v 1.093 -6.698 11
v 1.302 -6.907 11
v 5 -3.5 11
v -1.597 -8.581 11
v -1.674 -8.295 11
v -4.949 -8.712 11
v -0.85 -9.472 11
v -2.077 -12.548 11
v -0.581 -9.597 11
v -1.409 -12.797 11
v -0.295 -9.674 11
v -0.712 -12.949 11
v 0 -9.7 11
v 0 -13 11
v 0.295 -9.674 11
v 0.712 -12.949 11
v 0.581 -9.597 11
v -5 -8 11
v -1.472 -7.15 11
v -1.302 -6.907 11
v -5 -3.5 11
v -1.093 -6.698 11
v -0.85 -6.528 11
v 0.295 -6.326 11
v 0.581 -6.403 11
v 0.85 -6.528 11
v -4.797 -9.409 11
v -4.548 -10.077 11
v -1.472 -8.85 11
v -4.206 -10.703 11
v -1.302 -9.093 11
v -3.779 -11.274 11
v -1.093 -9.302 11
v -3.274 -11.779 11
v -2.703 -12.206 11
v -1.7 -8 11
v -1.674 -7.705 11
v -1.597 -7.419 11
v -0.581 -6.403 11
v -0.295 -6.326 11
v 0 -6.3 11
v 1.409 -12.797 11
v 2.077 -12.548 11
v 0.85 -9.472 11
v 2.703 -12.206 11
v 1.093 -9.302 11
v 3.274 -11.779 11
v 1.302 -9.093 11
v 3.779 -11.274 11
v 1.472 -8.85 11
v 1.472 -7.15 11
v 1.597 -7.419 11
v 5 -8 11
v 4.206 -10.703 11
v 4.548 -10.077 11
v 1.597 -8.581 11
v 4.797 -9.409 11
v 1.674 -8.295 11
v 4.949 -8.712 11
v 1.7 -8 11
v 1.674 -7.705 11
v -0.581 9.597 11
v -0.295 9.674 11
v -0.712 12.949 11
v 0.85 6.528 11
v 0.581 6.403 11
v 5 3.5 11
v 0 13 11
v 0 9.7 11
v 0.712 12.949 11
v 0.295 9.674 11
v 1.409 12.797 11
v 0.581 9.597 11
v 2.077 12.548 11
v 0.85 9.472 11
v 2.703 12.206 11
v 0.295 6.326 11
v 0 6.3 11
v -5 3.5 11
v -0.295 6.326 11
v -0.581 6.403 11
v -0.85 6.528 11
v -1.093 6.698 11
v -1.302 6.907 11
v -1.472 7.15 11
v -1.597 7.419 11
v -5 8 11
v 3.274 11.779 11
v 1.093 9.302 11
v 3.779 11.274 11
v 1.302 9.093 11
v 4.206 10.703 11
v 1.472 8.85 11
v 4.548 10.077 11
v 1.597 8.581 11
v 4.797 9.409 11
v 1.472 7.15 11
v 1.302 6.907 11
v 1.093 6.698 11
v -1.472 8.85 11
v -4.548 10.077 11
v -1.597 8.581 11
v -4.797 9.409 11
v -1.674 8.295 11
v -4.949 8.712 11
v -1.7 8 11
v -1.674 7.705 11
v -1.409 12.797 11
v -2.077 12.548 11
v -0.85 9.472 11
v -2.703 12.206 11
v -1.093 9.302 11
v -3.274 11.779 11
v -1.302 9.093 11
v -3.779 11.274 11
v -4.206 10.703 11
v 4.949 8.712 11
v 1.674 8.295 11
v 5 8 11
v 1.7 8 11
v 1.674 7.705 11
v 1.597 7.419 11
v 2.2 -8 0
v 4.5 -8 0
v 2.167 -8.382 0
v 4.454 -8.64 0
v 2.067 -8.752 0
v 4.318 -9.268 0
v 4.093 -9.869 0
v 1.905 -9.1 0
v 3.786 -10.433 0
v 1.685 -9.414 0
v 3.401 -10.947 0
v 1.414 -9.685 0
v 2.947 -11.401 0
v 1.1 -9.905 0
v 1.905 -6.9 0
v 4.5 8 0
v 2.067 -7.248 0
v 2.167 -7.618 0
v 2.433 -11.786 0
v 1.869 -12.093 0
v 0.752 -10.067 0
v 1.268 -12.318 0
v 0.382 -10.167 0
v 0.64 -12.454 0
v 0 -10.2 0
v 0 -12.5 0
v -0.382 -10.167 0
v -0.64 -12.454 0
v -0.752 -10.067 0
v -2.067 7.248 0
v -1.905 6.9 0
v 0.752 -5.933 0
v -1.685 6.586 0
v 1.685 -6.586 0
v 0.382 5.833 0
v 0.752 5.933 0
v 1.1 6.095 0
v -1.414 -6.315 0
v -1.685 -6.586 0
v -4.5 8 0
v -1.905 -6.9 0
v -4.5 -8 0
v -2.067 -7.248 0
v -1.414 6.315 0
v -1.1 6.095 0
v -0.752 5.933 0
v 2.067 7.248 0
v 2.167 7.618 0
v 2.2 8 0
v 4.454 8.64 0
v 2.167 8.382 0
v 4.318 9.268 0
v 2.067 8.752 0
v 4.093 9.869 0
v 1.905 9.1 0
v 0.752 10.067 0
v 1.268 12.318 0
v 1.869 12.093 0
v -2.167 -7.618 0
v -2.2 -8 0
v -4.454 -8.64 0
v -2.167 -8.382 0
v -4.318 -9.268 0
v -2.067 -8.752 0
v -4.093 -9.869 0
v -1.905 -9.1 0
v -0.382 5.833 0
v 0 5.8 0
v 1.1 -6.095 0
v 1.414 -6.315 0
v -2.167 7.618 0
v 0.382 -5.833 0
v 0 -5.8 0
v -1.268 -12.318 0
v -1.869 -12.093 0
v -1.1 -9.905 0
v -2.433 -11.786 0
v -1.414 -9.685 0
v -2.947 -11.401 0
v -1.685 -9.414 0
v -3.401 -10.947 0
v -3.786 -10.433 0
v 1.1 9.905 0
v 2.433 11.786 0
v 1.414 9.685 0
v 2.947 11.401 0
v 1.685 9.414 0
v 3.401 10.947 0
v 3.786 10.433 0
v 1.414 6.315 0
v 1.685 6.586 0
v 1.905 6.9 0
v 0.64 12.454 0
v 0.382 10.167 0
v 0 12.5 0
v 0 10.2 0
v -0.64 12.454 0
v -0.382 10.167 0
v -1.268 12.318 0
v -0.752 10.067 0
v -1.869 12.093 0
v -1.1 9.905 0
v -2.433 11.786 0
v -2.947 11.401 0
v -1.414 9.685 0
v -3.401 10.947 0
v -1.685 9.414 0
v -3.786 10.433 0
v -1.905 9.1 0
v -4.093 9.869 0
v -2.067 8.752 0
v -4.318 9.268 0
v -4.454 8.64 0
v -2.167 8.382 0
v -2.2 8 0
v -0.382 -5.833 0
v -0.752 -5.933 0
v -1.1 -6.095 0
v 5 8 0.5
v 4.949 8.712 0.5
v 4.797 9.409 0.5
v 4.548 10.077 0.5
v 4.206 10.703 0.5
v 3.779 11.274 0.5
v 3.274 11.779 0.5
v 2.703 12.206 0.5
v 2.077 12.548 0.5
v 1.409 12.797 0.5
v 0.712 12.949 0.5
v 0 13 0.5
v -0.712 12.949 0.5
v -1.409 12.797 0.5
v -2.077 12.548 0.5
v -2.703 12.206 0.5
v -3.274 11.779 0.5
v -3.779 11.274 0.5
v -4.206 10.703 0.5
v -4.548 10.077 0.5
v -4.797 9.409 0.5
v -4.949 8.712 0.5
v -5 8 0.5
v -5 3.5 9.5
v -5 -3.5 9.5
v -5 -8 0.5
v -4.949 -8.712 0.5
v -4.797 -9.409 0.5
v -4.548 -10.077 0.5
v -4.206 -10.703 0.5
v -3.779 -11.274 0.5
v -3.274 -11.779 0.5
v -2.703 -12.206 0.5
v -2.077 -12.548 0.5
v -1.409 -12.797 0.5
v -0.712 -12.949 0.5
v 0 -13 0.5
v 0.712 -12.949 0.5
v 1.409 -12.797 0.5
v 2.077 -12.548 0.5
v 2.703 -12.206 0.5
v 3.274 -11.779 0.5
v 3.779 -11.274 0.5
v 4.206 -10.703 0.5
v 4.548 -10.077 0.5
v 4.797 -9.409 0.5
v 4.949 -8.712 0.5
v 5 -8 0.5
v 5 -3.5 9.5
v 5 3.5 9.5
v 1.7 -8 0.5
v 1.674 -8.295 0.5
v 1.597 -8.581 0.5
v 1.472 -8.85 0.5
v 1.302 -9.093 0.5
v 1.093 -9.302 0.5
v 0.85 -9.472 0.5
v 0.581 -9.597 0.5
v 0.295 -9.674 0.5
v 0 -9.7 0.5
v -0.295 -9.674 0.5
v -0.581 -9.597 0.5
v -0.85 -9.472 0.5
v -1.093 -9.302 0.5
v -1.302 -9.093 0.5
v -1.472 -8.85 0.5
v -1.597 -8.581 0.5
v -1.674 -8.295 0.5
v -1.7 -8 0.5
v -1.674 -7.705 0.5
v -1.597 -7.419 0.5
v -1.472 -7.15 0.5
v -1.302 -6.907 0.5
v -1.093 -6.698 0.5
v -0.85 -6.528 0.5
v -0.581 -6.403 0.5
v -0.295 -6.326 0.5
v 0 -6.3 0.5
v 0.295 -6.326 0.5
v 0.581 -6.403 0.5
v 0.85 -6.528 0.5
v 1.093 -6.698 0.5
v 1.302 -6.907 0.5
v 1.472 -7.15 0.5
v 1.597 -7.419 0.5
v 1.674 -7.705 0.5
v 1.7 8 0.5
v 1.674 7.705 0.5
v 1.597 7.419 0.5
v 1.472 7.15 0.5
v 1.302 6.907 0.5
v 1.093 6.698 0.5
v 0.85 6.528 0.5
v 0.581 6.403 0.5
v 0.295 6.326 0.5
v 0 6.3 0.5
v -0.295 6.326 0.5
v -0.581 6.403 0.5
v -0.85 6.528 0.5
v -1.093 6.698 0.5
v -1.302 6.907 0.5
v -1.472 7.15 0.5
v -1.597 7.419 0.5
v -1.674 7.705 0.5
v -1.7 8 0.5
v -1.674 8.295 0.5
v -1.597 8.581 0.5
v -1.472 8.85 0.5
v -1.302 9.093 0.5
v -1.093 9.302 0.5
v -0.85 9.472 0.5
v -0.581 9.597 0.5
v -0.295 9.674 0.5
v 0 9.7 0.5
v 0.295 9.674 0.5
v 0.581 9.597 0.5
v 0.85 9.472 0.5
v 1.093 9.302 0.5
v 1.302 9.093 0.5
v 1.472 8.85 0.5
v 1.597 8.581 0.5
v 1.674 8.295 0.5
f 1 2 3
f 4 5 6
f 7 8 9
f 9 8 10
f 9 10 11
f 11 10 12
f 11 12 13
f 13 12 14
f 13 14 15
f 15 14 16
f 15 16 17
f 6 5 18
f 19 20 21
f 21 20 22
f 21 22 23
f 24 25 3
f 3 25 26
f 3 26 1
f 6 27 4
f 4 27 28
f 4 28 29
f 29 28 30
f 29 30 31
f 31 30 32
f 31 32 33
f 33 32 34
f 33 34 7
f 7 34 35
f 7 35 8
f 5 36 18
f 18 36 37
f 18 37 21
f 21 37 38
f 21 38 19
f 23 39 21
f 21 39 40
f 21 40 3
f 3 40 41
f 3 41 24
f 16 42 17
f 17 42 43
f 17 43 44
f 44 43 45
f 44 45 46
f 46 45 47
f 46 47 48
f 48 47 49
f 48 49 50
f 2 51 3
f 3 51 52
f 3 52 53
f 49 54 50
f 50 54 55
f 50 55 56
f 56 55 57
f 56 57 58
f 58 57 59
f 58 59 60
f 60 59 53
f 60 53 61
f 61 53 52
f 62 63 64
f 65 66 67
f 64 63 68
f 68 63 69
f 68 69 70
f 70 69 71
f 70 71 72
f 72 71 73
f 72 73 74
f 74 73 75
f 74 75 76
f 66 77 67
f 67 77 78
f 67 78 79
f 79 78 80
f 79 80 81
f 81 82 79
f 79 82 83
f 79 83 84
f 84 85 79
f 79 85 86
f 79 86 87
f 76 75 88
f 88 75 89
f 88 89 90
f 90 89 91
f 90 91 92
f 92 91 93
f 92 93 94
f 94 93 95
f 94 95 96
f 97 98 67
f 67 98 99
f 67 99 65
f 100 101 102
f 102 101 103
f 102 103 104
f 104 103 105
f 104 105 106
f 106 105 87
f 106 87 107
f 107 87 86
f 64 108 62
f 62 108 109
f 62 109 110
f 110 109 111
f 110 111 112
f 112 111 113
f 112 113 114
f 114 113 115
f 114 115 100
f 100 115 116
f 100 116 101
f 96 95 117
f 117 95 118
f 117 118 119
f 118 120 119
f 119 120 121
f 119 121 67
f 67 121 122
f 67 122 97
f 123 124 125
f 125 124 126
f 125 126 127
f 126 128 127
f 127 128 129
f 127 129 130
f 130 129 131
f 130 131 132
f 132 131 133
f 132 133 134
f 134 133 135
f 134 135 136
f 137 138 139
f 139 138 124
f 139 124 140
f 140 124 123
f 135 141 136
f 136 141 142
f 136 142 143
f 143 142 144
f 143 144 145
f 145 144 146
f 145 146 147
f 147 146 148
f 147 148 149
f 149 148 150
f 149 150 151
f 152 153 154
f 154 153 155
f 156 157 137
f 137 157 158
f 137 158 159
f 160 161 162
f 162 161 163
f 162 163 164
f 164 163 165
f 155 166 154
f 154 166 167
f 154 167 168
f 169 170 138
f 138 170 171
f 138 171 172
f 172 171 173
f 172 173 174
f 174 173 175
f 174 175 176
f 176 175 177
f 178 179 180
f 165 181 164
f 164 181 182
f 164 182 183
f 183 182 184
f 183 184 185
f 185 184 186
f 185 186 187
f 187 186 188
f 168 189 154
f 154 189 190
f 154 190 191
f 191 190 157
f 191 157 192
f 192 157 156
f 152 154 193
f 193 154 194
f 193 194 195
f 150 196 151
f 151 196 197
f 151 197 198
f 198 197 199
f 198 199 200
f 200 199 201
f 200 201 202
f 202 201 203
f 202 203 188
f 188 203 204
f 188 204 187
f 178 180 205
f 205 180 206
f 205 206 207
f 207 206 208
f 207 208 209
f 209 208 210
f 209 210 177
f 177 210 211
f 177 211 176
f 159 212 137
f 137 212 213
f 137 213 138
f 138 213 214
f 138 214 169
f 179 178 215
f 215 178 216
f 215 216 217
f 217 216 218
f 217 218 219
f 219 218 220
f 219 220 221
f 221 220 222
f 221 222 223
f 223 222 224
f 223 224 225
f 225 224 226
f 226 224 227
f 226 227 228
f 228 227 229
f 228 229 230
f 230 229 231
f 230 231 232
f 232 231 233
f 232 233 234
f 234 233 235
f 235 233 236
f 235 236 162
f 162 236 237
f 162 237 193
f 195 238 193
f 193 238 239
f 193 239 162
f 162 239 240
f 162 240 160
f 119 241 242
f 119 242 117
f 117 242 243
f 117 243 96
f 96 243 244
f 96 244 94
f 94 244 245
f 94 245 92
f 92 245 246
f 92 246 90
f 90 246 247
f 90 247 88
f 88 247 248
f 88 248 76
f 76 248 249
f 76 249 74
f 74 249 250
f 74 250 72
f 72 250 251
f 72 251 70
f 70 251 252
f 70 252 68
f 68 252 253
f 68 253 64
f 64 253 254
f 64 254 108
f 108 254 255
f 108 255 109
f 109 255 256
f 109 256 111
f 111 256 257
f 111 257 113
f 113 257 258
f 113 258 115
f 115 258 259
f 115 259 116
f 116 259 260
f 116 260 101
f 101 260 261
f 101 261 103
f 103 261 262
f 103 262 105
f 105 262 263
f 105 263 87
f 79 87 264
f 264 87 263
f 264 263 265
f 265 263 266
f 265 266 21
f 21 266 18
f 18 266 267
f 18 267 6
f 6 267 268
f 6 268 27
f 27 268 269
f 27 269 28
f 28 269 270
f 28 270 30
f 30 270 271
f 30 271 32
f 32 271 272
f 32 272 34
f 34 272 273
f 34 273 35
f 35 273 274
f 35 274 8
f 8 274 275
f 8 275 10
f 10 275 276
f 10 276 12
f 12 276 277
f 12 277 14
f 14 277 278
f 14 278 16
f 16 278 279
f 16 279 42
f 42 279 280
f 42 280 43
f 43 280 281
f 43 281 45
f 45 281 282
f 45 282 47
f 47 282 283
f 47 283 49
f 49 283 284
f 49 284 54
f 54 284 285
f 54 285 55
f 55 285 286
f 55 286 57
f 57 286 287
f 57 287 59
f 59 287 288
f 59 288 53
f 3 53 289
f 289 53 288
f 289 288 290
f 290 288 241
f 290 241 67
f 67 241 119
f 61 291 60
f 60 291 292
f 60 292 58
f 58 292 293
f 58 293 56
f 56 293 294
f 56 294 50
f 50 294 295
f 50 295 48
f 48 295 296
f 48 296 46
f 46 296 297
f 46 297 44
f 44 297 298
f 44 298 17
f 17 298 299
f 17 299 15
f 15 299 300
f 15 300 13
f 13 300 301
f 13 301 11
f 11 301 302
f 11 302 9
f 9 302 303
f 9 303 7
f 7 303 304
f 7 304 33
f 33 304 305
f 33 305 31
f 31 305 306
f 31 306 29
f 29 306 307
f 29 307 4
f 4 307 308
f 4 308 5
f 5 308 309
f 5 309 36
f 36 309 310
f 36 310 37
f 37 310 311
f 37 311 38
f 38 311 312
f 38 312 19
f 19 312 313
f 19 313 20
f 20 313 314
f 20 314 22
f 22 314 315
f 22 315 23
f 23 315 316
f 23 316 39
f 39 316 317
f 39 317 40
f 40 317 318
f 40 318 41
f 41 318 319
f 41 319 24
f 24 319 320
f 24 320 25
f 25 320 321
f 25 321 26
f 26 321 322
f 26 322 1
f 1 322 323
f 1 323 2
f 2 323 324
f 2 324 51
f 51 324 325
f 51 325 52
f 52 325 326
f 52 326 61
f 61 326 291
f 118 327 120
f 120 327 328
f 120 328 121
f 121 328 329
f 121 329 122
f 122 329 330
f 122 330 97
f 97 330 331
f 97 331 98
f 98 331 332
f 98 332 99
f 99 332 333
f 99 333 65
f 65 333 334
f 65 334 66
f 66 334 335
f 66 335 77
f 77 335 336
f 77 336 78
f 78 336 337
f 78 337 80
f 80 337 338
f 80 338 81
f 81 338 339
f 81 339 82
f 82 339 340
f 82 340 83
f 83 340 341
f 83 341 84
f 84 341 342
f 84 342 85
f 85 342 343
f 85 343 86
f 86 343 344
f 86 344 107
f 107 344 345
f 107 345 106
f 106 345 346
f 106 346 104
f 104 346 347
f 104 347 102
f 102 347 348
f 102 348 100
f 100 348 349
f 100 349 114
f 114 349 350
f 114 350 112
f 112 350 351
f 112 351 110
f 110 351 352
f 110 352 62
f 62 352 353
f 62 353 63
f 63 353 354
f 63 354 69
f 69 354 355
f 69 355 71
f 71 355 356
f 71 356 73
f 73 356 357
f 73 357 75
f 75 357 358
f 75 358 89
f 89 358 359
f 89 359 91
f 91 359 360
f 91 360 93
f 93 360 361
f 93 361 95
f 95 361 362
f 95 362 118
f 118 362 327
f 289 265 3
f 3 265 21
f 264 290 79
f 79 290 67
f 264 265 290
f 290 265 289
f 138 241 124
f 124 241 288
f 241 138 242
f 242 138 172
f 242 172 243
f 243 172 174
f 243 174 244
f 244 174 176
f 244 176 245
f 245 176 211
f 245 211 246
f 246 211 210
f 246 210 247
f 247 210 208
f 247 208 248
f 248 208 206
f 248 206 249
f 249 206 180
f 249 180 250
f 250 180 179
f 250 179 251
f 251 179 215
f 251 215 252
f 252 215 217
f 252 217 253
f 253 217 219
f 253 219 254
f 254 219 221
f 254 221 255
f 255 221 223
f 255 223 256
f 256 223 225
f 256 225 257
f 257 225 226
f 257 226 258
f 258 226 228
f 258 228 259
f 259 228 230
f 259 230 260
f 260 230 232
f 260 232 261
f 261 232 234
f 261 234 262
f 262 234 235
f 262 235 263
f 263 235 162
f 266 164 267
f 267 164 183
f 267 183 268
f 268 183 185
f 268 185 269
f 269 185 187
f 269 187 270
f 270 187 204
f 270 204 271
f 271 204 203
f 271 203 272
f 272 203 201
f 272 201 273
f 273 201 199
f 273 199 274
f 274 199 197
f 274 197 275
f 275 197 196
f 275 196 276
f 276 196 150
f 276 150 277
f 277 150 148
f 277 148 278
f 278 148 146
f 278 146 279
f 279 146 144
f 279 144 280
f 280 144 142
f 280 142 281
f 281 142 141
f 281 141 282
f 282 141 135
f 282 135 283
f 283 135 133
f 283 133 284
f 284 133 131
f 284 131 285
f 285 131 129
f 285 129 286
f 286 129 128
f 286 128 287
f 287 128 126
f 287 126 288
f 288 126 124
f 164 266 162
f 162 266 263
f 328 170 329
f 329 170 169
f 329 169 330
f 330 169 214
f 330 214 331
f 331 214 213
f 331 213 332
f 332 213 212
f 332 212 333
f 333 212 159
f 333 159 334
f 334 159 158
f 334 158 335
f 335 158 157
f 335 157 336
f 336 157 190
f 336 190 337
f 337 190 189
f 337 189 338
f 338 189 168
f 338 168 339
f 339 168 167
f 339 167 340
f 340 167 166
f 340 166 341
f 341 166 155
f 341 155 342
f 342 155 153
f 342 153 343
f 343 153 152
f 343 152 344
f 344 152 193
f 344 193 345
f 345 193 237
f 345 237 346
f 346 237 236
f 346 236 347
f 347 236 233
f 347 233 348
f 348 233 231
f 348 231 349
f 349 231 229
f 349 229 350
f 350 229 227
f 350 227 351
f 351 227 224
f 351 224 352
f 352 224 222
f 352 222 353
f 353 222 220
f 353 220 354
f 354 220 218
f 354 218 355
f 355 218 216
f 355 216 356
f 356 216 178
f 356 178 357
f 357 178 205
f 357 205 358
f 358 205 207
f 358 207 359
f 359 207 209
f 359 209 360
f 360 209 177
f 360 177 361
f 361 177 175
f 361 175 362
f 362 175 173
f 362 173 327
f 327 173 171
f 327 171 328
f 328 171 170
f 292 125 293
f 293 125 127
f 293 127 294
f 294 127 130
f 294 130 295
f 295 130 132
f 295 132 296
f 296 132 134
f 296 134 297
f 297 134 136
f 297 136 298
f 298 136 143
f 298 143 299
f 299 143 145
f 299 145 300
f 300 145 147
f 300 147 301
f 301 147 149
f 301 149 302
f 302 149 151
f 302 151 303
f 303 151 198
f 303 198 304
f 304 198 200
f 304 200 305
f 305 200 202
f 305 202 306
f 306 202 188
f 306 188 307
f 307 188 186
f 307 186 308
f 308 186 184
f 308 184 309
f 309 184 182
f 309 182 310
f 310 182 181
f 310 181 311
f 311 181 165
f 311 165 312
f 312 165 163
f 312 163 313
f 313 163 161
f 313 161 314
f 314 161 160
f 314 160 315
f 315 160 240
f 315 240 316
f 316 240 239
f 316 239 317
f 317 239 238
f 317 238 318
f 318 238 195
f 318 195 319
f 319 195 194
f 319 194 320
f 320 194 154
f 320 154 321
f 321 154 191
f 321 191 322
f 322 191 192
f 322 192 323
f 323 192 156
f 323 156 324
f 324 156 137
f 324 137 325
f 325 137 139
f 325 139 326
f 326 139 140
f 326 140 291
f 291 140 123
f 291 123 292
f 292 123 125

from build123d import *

# Parameters (mm, degrees)
SKETCH1_R           = 1.7
BOSS_EXTRUDE1_DEPTH = 11
SKETCH2_W           = 10
SKETCH2_H           = 7
CUT_EXTRUDE1_DEPTH  = 1.5
CHAMFER1_SIZE       = 0.5


with BuildPart() as part:
    # Sketch1 → Boss-Extrude1 (new body)
    with BuildSketch(Plane.XY):
        with BuildLine():
            Line((-5, -8), (-5, 8))
            ThreePointArc((-5, 8), (0, 13), (5, 8))
            Line((5, 8), (5, -8))
            ThreePointArc((5, -8), (0, -13), (-5, -8))
        make_face()
        with Locations((0, 8)):
            Circle(SKETCH1_R, mode=Mode.SUBTRACT)
        with Locations((0, -8)):
            Circle(SKETCH1_R, mode=Mode.SUBTRACT)
    extrude(amount=BOSS_EXTRUDE1_DEPTH)

    # Sketch2 → Cut-Extrude1 (cut)
    with BuildSketch(Plane.XY.offset(11)):
        Rectangle(SKETCH2_W, SKETCH2_H)
    extrude(amount=-CUT_EXTRUDE1_DEPTH, mode=Mode.SUBTRACT)

    # Chamfer1
    chamfer1_edges = [part.edges().sort_by_distance(p)[0] for p in [
        (-1.7, 8, 0),
        (-1.7, -8, 0),
        (-5, 0, 0),
        (0, 13, 0),
        (5, 0, 0),
        (0, -13, 0),
    ]]
    chamfer(chamfer1_edges, length=CHAMFER1_SIZE)


solid = part.part
